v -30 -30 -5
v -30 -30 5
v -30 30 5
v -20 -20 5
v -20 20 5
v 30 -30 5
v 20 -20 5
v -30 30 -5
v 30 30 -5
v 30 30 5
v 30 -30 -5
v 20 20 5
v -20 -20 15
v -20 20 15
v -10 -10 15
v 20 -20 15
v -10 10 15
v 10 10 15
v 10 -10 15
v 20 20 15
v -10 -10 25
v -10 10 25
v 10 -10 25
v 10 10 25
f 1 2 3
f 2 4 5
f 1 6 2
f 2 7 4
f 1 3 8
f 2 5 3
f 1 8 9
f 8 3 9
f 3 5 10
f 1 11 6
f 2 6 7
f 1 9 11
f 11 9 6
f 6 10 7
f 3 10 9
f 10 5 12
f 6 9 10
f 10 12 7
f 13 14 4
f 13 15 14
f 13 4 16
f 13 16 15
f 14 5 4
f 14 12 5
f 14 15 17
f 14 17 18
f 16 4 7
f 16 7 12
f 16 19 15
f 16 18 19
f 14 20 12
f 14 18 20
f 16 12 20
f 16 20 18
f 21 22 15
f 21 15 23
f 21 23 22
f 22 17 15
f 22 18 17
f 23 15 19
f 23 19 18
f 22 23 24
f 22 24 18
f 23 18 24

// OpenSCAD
cube([60,60,10], center=true);
translate([0,0,10]) cube([40,40,10], center=true);
translate([0,0,20]) cube([20,20,10], center=true);
